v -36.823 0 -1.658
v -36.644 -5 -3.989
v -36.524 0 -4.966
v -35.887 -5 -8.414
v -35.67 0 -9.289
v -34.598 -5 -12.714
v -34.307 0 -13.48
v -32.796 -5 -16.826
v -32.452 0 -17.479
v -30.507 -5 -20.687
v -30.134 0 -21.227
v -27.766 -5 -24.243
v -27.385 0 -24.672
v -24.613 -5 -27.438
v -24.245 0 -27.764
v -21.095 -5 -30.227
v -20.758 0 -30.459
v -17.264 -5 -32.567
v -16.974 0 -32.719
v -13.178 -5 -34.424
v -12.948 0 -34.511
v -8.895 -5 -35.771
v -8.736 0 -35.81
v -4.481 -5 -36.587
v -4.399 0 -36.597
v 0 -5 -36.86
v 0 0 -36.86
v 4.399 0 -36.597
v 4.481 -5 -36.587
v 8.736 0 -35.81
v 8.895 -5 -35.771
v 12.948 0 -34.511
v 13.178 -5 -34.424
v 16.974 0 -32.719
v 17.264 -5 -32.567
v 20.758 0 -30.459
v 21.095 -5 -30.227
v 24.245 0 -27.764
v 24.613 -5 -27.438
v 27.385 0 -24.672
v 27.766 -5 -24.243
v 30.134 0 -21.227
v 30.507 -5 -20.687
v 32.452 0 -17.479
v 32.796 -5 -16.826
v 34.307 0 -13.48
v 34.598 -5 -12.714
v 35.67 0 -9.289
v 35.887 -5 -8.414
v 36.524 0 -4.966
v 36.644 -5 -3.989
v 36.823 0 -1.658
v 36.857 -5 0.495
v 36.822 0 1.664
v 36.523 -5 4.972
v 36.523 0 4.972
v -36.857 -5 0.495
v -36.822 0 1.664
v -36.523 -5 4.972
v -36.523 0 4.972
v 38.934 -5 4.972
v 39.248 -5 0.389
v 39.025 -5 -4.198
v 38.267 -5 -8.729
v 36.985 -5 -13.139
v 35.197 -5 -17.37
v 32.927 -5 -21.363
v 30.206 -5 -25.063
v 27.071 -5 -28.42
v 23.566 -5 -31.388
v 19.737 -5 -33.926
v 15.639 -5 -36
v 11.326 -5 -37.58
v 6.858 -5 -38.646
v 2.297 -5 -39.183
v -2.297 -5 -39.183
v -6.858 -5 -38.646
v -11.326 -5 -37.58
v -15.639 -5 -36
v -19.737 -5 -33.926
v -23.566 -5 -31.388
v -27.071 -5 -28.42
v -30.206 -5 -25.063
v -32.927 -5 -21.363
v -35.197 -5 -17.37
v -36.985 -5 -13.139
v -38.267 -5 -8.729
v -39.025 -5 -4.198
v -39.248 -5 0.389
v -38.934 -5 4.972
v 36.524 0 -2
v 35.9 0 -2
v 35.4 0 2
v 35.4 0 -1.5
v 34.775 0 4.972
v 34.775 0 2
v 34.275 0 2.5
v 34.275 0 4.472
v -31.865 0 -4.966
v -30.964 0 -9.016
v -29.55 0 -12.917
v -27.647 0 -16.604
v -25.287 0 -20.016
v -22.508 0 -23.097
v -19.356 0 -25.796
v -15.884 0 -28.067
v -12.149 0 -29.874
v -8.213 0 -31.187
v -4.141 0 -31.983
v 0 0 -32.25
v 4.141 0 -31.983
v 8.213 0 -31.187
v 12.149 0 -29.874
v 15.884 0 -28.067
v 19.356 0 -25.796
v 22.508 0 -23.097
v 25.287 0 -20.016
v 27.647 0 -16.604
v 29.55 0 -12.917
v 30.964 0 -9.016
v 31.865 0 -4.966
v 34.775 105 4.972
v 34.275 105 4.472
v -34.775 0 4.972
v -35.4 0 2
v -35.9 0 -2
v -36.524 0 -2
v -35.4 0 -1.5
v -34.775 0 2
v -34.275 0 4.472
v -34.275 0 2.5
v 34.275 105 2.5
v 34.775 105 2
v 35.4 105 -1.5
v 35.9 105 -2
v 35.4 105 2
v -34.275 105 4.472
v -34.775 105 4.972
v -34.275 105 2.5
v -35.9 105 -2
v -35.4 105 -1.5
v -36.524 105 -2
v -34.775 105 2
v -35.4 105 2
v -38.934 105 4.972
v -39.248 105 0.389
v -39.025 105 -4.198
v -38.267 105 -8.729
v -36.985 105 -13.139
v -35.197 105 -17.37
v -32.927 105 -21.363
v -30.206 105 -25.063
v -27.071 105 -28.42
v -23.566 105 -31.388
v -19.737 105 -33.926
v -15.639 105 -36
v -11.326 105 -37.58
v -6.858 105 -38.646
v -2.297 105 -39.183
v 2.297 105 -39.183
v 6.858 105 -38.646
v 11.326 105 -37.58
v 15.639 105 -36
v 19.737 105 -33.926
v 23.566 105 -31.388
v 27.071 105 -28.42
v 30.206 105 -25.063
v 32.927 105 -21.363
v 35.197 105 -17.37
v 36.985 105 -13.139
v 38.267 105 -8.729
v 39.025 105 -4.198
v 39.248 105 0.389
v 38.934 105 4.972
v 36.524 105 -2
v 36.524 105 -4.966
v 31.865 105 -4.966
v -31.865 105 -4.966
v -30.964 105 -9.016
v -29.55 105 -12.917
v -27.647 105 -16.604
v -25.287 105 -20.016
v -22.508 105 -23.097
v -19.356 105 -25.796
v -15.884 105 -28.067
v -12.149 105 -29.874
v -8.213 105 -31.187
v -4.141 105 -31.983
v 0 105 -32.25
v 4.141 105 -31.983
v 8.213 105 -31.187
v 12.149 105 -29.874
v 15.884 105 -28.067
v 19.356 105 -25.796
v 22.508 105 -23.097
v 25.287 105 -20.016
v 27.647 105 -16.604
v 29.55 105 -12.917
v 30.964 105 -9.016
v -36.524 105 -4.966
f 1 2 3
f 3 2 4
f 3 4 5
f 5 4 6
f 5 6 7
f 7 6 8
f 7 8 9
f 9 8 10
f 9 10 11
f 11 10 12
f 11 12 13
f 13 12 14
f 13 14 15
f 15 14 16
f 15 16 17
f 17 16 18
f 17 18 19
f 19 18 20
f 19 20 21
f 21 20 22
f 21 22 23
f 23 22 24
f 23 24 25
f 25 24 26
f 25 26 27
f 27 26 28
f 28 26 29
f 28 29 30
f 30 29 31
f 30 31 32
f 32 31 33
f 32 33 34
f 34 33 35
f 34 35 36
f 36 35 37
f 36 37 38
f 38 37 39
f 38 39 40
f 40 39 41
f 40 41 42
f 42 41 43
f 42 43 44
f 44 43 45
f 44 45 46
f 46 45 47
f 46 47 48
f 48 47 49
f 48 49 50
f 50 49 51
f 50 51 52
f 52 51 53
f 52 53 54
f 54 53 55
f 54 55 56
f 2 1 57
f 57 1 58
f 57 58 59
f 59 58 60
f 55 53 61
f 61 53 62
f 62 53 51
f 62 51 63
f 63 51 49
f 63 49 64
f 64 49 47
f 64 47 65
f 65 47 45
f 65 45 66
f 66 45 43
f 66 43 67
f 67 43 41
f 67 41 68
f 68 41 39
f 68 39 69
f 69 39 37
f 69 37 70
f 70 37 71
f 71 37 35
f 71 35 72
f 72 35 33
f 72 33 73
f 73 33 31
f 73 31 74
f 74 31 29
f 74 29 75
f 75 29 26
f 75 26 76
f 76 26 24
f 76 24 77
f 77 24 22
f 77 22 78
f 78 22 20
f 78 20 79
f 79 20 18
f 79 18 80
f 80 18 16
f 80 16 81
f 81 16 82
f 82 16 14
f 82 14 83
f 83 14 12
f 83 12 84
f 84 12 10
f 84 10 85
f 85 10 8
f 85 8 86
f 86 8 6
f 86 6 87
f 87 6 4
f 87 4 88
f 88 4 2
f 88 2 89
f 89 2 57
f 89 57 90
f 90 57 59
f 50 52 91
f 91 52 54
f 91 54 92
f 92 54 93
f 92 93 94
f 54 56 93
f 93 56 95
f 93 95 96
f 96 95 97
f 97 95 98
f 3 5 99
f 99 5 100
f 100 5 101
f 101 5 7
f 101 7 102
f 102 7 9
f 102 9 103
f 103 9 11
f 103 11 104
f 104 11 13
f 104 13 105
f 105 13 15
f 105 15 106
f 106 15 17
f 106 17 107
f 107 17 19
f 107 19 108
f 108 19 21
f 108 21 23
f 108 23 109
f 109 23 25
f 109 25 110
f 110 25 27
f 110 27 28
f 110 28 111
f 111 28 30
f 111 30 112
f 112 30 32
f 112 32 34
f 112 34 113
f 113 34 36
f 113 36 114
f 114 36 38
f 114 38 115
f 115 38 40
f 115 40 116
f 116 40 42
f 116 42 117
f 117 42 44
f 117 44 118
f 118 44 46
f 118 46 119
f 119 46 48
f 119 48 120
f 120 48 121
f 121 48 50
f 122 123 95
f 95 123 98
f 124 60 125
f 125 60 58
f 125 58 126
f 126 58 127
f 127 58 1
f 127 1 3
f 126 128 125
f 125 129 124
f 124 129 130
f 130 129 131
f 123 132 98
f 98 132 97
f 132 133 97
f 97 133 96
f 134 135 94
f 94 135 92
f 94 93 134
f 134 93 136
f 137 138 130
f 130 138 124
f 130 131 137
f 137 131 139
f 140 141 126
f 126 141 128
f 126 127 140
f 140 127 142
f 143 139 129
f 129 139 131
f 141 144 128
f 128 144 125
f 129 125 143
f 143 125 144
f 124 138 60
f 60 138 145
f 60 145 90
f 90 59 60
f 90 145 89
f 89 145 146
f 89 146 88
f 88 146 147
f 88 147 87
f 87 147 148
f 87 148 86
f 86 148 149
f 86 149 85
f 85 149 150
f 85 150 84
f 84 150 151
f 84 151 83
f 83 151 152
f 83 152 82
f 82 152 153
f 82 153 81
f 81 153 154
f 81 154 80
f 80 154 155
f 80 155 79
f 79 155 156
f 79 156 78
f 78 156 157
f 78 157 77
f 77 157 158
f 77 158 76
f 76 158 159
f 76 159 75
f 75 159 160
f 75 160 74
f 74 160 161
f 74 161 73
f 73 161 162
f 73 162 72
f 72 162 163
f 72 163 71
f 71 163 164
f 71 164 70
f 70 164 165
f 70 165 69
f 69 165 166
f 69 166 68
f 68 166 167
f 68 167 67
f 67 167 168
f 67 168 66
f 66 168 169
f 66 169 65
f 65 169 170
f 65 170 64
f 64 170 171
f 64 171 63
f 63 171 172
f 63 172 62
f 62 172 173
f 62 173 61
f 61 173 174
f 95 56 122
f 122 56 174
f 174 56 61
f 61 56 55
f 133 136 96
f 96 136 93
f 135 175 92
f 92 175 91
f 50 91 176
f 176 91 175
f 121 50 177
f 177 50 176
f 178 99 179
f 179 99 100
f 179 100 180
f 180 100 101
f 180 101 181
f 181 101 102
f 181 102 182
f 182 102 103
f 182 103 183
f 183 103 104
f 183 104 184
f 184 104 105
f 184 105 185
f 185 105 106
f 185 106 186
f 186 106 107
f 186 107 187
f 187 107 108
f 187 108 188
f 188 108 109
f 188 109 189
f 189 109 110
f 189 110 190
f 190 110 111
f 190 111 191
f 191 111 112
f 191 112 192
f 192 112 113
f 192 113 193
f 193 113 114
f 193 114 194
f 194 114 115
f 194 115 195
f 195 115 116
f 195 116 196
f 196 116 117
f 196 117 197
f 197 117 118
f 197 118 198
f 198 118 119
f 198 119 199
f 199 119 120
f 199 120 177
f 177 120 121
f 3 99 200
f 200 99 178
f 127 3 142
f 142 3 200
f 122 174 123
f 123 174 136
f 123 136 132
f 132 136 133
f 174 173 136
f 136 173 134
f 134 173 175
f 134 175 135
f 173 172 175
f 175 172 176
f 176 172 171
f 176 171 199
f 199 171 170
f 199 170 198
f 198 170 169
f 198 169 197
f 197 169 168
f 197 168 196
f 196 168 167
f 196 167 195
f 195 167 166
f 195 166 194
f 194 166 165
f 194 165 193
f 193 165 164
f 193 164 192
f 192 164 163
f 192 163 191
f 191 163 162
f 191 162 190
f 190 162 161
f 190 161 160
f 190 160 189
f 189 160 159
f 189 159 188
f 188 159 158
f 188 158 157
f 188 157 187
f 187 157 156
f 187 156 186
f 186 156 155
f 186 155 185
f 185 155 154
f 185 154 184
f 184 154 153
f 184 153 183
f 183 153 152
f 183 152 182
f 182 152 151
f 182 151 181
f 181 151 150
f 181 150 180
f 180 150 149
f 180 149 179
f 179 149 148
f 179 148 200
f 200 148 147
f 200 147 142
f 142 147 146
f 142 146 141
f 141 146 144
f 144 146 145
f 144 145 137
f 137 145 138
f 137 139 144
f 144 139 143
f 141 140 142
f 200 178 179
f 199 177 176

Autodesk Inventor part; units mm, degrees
ref_plane "YZ Plane" through (0, 0, 0) normal (1, 0, 0) x (0, 1, 0)
ref_plane "XZ Plane" through (0, 0, 0) normal (0, 1, 0) x (-1, 0, 0)
ref_plane "XY Plane" through (0, 0, 0) normal (0, 0, 1) x (1, 0, 0)
sketch "Sketch1" plane through (0, 0, 0) normal (0, 1, 0) x (-1, 0, 0)
  arc A0 (-31.8654, -4.9656) -> (31.8654, -4.9656) centre (0, 0) ccw
  arc A1 (-38.9338, 4.9718) -> (38.9338, 4.9718) centre (0, 0) ccw
  line L0 (39.25, 0) -> (-39.25, 0)
  line L1 (35.3996, 0) -> (35.3996, 2)
  line L2 (35.3996, 2) -> (35.3996, -2)
  line L3 (36.0047, -4.9656) -> (31.8654, -4.9656)
  line L4 (34.7945, 4.9718) -> (38.9338, 4.9718)
  line L5 (35.3996, 2) -> (34.2752, 2)
  line L6 (34.2752, 2) -> (34.2752, 4.9718)
  line L7 (34.2752, 4.9718) -> (34.7945, 4.9718)
  line L8 (36.0047, -4.9656) -> (36.5241, -4.9656)
  line L9 (36.5241, -4.9656) -> (36.5241, -2)
  line L10 (36.5241, -2) -> (35.3996, -2)
  line L11 (0, 0) -> (0, -17)
  line L12 (-35.3996, 0) -> (-35.3996, 2)
  line L13 (-35.3996, 2) -> (-35.3996, -2)
  line L14 (-36.0047, -4.9656) -> (-31.8654, -4.9656)
  line L15 (-34.7945, 4.9718) -> (-38.9338, 4.9718)
  line L16 (-35.3996, 2) -> (-34.2752, 2)
  line L17 (-34.2752, 2) -> (-34.2752, 4.9718)
  line L18 (-34.2752, 4.9718) -> (-34.7945, 4.9718)
  line L19 (-36.0047, -4.9656) -> (-36.5241, -4.9656)
  line L20 (-36.5241, -4.9656) -> (-36.5241, -2)
  line L21 (-36.5241, -2) -> (-35.3996, -2)
  arc A2 (-38.9338, 4.9718) -> (38.9338, 4.9718) centre (0, 0) ccw
  arc A3 (-36.5232, 4.9718) -> (36.5232, 4.9718) centre (0, 0) ccw
  line L22 (-36.5232, 4.9718) -> (-38.9338, 4.9718)
  line L23 (38.9338, 4.9718) -> (36.5232, 4.9718)
  dimension "d0" = 64.5
  dimension "d1" = 7
extrude "Extrusion1" add sketch "Sketch1" along normal blind 105 contours A0 L3 L8 A3 L19 L14 | A3 L0 L13 L21 L20 | A3 L0 A1 | L9 L10 L2 L0 A3 | A3 L15 L18 L17 L16 L12 L0 | L0 A1 L15 A3 | A3 L4 A1 L0 | L0 L1 L5 L6 L7 L4 A3
chamfer "Chamfer1" distance 0.5 angle 45 6 edges at (-34.2752, 52.5, 2) (-35.3996, 52.5, -2) (-34.2752, 52.5, 4.9718) (35.3996, 52.5, -2) (34.2752, 52.5, 2) (34.2752, 52.5, 4.9718)
extrude "Extrusion2" add sketch "Sketch1" against normal blind 5 contours A3 L0 A1 | L0 A1 L15 A3 | A3 L4 A1 L0
properties part number "cyl outer"
